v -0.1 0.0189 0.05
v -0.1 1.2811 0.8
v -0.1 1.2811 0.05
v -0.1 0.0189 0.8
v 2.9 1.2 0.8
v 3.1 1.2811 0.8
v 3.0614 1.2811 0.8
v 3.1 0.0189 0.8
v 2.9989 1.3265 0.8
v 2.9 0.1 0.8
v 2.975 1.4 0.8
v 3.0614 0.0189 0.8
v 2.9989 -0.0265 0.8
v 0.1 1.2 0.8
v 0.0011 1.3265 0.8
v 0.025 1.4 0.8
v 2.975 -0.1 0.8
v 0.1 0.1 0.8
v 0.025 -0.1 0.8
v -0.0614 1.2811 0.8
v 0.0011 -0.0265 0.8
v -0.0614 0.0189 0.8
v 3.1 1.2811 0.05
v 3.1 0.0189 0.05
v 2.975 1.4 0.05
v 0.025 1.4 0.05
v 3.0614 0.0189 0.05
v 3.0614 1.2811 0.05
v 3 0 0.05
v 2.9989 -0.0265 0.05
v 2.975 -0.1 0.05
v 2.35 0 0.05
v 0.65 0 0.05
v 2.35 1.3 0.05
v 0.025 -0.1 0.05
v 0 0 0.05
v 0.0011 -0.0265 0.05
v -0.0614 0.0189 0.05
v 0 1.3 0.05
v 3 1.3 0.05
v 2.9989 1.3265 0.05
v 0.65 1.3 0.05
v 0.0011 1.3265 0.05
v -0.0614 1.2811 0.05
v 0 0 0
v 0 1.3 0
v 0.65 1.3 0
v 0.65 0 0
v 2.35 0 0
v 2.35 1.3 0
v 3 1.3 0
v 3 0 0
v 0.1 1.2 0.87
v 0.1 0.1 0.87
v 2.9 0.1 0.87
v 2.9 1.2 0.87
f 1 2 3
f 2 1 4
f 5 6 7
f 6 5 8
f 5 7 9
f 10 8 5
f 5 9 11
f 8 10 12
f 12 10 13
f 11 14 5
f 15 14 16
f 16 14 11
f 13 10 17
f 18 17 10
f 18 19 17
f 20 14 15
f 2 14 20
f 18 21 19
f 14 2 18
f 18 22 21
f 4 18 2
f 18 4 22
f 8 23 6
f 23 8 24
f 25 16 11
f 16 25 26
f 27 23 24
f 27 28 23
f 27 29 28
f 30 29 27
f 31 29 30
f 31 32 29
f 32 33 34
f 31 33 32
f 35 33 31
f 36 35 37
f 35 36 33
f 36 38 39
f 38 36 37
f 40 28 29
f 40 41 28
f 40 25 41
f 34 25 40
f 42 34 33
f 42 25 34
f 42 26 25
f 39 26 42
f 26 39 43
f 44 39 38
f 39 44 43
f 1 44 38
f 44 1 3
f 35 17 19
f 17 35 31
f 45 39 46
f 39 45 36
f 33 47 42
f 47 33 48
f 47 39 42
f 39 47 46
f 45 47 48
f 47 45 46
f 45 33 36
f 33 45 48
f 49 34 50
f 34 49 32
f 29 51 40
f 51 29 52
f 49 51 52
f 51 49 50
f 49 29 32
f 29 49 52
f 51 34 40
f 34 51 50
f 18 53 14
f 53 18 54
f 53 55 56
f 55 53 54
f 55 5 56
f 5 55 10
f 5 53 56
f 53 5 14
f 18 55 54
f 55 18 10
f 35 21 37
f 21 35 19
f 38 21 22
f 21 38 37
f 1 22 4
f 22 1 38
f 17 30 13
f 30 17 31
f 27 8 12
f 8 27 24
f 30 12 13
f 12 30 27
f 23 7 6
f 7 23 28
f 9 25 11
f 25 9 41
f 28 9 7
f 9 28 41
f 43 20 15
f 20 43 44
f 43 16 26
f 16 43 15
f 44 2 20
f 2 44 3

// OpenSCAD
pin_x = 0.65;
pin_y = 1.3;
pin_z = 0.05;

case_x = 3.2;
case_y = 1.5;
case_z = 0.75;
case_top_diff = 0.4;
case_top_size_z = 0.07;

difference (){
    
    difference(){
        
        union(){
            // case
            translate([-0.1,-0.1,pin_z])
                cube(size=[case_x,case_y,case_z], center = false);
            // pins
            cube(size = [pin_x,pin_y,pin_z], center=false);
            translate([case_x - pin_x - 0.2,0,0])
                cube(size = [pin_x,pin_y,pin_z], center=false);
            // top
            translate([-0.1+case_top_diff/2,-0.1+case_top_diff/2,pin_z+case_z])
                cube(size=[case_x-case_top_diff,case_y-case_top_diff,case_top_size_z], center = false);
        }
        
        union(){
            translate([-0.1,-0.1,0])
                cylinder(h=1,d=0.25,center=false, $fn = 10);
            translate([-0.1+case_x,-0.1,0])
                cylinder(h=1,d=0.25,center=false, $fn = 10);
            translate([-0.1+case_x,-0.1+case_y,0])
                cylinder(h=1,d=0.25,center=false, $fn = 10);
            translate([-0.1,-0.1+case_y,0])
                cylinder(h=1,d=0.25,center=false, $fn = 10);
        }
        
    };
}
